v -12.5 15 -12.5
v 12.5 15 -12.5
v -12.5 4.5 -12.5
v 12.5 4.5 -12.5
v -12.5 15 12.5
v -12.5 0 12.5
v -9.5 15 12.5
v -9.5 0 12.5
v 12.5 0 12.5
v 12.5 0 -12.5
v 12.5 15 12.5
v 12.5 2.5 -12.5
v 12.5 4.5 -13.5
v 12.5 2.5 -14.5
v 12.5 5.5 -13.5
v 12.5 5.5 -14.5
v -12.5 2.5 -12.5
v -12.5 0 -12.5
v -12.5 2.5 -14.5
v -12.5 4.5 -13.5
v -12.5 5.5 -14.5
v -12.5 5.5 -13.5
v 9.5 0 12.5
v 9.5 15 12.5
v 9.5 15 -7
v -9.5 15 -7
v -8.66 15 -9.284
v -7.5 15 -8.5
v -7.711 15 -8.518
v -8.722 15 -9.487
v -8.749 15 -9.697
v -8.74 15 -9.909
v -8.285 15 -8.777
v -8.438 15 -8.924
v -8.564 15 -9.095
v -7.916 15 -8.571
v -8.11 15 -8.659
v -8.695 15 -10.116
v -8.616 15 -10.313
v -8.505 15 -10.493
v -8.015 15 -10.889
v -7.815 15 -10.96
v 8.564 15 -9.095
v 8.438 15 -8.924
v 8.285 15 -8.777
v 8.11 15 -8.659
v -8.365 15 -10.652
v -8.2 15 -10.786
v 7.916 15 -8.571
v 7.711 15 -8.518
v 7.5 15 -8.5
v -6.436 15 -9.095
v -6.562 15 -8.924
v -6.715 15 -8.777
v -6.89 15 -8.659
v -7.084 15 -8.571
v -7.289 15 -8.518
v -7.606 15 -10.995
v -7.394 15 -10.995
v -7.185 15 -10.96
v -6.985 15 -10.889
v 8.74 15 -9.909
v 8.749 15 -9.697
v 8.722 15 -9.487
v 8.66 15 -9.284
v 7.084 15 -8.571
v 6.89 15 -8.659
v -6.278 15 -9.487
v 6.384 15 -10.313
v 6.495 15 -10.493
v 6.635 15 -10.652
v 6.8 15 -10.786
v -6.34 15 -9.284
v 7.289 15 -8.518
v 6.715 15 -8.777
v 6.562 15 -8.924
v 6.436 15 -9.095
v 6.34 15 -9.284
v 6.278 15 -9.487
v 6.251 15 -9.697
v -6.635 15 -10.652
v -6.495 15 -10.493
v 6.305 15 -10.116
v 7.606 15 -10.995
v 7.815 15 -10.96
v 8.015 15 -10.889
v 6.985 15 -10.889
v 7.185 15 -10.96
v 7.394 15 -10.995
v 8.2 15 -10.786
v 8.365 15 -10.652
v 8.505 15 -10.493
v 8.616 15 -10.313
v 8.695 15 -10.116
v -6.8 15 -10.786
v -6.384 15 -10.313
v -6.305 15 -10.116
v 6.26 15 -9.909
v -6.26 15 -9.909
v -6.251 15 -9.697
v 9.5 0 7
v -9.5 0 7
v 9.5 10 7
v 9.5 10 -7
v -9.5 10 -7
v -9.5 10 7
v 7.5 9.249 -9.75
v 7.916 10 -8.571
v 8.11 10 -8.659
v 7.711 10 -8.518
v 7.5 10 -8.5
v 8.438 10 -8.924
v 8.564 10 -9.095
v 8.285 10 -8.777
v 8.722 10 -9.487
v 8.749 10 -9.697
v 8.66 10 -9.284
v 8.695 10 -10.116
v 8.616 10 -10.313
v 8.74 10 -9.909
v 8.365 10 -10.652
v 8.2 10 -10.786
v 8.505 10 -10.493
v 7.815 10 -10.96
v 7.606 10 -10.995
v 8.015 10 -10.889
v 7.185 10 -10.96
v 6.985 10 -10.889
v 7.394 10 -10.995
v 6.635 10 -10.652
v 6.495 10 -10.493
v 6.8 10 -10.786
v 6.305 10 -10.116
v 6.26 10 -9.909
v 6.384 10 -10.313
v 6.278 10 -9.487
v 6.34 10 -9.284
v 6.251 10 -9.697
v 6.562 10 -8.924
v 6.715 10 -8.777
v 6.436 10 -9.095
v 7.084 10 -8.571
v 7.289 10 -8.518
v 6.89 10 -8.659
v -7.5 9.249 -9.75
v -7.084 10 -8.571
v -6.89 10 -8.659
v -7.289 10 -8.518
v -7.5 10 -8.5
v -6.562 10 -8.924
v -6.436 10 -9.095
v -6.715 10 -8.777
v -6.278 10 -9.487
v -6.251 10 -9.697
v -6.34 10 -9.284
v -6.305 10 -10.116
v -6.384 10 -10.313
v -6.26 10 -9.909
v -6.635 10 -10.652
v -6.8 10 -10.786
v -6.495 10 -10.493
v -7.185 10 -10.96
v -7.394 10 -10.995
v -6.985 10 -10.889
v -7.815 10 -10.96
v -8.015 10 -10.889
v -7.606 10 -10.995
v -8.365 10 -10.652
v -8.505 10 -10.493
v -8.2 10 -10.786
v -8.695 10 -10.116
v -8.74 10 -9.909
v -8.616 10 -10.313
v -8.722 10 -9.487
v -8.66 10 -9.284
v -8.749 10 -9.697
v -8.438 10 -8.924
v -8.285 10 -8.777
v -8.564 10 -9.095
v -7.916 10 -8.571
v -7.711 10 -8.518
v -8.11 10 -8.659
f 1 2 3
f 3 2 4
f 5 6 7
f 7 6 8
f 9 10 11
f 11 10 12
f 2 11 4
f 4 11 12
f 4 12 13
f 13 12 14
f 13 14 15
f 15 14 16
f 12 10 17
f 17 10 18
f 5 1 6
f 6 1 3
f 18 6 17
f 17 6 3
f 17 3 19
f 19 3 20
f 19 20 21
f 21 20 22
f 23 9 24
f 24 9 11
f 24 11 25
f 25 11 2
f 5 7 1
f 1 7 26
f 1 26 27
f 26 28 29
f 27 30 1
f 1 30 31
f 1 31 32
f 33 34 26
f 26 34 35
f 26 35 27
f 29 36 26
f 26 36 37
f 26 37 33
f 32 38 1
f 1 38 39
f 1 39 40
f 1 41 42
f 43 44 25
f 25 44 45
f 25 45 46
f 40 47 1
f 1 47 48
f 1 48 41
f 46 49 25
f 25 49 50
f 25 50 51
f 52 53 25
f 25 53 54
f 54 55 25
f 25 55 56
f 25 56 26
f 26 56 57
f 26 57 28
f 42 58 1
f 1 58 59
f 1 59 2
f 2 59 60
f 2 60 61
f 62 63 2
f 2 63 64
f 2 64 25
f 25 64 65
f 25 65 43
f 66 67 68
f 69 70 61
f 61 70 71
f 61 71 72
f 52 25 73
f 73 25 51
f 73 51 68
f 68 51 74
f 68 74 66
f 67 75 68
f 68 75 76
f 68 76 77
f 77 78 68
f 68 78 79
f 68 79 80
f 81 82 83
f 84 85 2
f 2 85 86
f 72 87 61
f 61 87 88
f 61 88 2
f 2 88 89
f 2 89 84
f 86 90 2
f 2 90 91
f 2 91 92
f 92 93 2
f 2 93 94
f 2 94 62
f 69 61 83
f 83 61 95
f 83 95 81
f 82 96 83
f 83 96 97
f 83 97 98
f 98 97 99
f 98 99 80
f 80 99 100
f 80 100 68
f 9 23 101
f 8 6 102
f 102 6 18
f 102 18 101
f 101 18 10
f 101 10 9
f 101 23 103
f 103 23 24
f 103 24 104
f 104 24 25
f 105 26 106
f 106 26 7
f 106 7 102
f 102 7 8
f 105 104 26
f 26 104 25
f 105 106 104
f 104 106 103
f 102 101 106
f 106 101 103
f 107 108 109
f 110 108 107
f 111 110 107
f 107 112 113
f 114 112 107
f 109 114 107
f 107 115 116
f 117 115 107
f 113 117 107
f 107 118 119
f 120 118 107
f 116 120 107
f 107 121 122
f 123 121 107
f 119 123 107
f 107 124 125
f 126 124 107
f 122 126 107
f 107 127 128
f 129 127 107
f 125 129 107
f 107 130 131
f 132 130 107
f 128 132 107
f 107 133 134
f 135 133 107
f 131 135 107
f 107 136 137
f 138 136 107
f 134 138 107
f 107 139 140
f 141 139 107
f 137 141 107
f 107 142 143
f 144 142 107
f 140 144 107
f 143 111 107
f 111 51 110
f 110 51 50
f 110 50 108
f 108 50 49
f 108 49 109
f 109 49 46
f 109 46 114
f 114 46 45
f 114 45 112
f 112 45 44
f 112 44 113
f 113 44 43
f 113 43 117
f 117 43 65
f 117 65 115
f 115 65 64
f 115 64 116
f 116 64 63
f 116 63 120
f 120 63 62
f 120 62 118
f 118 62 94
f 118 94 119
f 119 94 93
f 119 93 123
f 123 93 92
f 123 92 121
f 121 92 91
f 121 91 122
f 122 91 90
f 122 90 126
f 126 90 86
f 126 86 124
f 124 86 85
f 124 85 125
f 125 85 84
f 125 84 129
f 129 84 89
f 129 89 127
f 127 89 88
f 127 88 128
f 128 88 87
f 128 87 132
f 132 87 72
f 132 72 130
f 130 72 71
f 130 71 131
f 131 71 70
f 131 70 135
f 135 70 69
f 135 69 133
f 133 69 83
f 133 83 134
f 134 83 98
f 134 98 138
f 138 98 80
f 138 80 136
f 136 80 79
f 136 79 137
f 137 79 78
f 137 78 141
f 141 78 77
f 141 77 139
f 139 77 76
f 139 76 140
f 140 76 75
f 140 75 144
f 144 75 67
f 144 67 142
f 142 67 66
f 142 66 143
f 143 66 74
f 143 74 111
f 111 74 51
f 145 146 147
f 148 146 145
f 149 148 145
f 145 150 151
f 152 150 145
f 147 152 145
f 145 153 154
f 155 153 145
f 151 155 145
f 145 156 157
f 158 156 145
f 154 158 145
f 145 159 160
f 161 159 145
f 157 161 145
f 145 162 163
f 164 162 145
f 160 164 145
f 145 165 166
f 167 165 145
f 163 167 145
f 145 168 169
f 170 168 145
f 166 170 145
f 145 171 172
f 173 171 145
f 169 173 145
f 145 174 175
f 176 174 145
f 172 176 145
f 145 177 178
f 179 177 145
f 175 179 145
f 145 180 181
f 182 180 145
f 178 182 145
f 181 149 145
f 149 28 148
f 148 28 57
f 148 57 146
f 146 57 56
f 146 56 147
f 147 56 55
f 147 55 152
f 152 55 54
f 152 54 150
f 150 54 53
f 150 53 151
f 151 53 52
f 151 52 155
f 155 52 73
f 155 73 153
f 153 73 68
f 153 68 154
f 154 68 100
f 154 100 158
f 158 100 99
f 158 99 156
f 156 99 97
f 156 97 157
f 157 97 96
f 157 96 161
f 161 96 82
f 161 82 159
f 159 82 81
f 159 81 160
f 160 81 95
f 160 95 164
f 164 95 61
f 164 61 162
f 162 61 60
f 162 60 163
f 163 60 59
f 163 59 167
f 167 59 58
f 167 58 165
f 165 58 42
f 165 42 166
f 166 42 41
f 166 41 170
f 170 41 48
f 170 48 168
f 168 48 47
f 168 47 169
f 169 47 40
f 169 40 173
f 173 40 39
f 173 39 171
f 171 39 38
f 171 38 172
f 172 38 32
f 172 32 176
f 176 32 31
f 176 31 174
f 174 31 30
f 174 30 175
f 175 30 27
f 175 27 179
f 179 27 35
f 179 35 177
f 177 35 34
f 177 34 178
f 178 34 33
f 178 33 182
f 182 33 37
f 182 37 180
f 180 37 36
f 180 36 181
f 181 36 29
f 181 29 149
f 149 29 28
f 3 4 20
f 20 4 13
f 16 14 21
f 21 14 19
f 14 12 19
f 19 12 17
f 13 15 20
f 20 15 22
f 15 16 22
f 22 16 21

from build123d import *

# Parameters (mm, degrees)
SKETCH1_W                       = 25
SKETCH1_H                       = 25
BOSS_EXTRUDE1_DEPTH             = 15
SKETCH2_W                       = 19
SKETCH2_H                       = 14
CUT_EXTRUDE1_DEPTH              = 5
CUT_EXTRUDE2_DEPTH              = 24.184046239
CUT_EXTRUDE2_DEPTH_BACK         = 15
SKETCH3_W                       = 19
SKETCH3_H                       = 5.5
TAP_DRILL_FOR_M3X0_5_TAP1_D     = 2.5
TAP_DRILL_FOR_M3X0_5_TAP1_DEPTH = 5
TAP_DRILL_FOR_M3X0_5_TAP1_TIP   = 0.751075774
SKETCH6_W                       = 2
SKETCH6_H                       = 2
BOSS_EXTRUDE2_DEPTH             = 25
SKETCH7_W                       = 1
SKETCH7_H                       = 1
BOSS_EXTRUDE3_DEPTH             = 25


with BuildPart() as part:
    # Sketch1 → Boss-Extrude1 (new body)
    with BuildSketch(Plane(origin=(0, 0, 0), x_dir=(1, 0, 0), z_dir=(0, 1, 0))):
        Rectangle(SKETCH1_W, SKETCH1_H)
    extrude(amount=BOSS_EXTRUDE1_DEPTH)

    # Sketch2 → Cut-Extrude1 (cut)
    with BuildSketch(Plane(origin=(0, 15, 0), x_dir=(1, 0, 0), z_dir=(0, 1, 0))):
        Rectangle(SKETCH2_W, SKETCH2_H)
    extrude(amount=-CUT_EXTRUDE1_DEPTH, mode=Mode.SUBTRACT)

    # Sketch3 → Cut-Extrude2 (cut, two sides: drawn at the far end of the back side and taken through both)
    with BuildSketch(Plane(origin=(0, 15, 0), x_dir=(1, 0, 0), z_dir=(0, 1, 0)).offset(-CUT_EXTRUDE2_DEPTH_BACK)):
        with Locations((0, -9.75)):
            Rectangle(SKETCH3_W, SKETCH3_H)
    extrude(amount=CUT_EXTRUDE2_DEPTH + CUT_EXTRUDE2_DEPTH_BACK, mode=Mode.SUBTRACT)

    # Tap Drill for M3x0.5 Tap1
    with Locations(Plane(origin=(-7.5, 15, -9.75), x_dir=(0, 0, 1), z_dir=(0, 1, 0))):
        with Locations((0, 0), (0, 15)):
            Hole(TAP_DRILL_FOR_M3X0_5_TAP1_D / 2, depth=TAP_DRILL_FOR_M3X0_5_TAP1_DEPTH)
            with Locations((0, 0, -(TAP_DRILL_FOR_M3X0_5_TAP1_DEPTH + TAP_DRILL_FOR_M3X0_5_TAP1_TIP / 2))):  # 118° drill point
                Cone(0, TAP_DRILL_FOR_M3X0_5_TAP1_D / 2, TAP_DRILL_FOR_M3X0_5_TAP1_TIP, mode=Mode.SUBTRACT)

    # Sketch6 → Boss-Extrude2 (add)
    with BuildSketch(Plane(origin=(12.5, 0, 0), x_dir=(0, 0, -1), z_dir=(1, 0, 0))):
        with Locations((13.5, 3.5)):
            Rectangle(SKETCH6_W, SKETCH6_H)
    extrude(amount=-BOSS_EXTRUDE2_DEPTH)

    # Sketch7 → Boss-Extrude3 (add)
    with BuildSketch(Plane(origin=(12.5, 0, 0), x_dir=(0, 0, -1), z_dir=(1, 0, 0))):
        with Locations((14, 5)):
            Rectangle(SKETCH7_W, SKETCH7_H)
    extrude(amount=-BOSS_EXTRUDE3_DEPTH)


solid = part.part
